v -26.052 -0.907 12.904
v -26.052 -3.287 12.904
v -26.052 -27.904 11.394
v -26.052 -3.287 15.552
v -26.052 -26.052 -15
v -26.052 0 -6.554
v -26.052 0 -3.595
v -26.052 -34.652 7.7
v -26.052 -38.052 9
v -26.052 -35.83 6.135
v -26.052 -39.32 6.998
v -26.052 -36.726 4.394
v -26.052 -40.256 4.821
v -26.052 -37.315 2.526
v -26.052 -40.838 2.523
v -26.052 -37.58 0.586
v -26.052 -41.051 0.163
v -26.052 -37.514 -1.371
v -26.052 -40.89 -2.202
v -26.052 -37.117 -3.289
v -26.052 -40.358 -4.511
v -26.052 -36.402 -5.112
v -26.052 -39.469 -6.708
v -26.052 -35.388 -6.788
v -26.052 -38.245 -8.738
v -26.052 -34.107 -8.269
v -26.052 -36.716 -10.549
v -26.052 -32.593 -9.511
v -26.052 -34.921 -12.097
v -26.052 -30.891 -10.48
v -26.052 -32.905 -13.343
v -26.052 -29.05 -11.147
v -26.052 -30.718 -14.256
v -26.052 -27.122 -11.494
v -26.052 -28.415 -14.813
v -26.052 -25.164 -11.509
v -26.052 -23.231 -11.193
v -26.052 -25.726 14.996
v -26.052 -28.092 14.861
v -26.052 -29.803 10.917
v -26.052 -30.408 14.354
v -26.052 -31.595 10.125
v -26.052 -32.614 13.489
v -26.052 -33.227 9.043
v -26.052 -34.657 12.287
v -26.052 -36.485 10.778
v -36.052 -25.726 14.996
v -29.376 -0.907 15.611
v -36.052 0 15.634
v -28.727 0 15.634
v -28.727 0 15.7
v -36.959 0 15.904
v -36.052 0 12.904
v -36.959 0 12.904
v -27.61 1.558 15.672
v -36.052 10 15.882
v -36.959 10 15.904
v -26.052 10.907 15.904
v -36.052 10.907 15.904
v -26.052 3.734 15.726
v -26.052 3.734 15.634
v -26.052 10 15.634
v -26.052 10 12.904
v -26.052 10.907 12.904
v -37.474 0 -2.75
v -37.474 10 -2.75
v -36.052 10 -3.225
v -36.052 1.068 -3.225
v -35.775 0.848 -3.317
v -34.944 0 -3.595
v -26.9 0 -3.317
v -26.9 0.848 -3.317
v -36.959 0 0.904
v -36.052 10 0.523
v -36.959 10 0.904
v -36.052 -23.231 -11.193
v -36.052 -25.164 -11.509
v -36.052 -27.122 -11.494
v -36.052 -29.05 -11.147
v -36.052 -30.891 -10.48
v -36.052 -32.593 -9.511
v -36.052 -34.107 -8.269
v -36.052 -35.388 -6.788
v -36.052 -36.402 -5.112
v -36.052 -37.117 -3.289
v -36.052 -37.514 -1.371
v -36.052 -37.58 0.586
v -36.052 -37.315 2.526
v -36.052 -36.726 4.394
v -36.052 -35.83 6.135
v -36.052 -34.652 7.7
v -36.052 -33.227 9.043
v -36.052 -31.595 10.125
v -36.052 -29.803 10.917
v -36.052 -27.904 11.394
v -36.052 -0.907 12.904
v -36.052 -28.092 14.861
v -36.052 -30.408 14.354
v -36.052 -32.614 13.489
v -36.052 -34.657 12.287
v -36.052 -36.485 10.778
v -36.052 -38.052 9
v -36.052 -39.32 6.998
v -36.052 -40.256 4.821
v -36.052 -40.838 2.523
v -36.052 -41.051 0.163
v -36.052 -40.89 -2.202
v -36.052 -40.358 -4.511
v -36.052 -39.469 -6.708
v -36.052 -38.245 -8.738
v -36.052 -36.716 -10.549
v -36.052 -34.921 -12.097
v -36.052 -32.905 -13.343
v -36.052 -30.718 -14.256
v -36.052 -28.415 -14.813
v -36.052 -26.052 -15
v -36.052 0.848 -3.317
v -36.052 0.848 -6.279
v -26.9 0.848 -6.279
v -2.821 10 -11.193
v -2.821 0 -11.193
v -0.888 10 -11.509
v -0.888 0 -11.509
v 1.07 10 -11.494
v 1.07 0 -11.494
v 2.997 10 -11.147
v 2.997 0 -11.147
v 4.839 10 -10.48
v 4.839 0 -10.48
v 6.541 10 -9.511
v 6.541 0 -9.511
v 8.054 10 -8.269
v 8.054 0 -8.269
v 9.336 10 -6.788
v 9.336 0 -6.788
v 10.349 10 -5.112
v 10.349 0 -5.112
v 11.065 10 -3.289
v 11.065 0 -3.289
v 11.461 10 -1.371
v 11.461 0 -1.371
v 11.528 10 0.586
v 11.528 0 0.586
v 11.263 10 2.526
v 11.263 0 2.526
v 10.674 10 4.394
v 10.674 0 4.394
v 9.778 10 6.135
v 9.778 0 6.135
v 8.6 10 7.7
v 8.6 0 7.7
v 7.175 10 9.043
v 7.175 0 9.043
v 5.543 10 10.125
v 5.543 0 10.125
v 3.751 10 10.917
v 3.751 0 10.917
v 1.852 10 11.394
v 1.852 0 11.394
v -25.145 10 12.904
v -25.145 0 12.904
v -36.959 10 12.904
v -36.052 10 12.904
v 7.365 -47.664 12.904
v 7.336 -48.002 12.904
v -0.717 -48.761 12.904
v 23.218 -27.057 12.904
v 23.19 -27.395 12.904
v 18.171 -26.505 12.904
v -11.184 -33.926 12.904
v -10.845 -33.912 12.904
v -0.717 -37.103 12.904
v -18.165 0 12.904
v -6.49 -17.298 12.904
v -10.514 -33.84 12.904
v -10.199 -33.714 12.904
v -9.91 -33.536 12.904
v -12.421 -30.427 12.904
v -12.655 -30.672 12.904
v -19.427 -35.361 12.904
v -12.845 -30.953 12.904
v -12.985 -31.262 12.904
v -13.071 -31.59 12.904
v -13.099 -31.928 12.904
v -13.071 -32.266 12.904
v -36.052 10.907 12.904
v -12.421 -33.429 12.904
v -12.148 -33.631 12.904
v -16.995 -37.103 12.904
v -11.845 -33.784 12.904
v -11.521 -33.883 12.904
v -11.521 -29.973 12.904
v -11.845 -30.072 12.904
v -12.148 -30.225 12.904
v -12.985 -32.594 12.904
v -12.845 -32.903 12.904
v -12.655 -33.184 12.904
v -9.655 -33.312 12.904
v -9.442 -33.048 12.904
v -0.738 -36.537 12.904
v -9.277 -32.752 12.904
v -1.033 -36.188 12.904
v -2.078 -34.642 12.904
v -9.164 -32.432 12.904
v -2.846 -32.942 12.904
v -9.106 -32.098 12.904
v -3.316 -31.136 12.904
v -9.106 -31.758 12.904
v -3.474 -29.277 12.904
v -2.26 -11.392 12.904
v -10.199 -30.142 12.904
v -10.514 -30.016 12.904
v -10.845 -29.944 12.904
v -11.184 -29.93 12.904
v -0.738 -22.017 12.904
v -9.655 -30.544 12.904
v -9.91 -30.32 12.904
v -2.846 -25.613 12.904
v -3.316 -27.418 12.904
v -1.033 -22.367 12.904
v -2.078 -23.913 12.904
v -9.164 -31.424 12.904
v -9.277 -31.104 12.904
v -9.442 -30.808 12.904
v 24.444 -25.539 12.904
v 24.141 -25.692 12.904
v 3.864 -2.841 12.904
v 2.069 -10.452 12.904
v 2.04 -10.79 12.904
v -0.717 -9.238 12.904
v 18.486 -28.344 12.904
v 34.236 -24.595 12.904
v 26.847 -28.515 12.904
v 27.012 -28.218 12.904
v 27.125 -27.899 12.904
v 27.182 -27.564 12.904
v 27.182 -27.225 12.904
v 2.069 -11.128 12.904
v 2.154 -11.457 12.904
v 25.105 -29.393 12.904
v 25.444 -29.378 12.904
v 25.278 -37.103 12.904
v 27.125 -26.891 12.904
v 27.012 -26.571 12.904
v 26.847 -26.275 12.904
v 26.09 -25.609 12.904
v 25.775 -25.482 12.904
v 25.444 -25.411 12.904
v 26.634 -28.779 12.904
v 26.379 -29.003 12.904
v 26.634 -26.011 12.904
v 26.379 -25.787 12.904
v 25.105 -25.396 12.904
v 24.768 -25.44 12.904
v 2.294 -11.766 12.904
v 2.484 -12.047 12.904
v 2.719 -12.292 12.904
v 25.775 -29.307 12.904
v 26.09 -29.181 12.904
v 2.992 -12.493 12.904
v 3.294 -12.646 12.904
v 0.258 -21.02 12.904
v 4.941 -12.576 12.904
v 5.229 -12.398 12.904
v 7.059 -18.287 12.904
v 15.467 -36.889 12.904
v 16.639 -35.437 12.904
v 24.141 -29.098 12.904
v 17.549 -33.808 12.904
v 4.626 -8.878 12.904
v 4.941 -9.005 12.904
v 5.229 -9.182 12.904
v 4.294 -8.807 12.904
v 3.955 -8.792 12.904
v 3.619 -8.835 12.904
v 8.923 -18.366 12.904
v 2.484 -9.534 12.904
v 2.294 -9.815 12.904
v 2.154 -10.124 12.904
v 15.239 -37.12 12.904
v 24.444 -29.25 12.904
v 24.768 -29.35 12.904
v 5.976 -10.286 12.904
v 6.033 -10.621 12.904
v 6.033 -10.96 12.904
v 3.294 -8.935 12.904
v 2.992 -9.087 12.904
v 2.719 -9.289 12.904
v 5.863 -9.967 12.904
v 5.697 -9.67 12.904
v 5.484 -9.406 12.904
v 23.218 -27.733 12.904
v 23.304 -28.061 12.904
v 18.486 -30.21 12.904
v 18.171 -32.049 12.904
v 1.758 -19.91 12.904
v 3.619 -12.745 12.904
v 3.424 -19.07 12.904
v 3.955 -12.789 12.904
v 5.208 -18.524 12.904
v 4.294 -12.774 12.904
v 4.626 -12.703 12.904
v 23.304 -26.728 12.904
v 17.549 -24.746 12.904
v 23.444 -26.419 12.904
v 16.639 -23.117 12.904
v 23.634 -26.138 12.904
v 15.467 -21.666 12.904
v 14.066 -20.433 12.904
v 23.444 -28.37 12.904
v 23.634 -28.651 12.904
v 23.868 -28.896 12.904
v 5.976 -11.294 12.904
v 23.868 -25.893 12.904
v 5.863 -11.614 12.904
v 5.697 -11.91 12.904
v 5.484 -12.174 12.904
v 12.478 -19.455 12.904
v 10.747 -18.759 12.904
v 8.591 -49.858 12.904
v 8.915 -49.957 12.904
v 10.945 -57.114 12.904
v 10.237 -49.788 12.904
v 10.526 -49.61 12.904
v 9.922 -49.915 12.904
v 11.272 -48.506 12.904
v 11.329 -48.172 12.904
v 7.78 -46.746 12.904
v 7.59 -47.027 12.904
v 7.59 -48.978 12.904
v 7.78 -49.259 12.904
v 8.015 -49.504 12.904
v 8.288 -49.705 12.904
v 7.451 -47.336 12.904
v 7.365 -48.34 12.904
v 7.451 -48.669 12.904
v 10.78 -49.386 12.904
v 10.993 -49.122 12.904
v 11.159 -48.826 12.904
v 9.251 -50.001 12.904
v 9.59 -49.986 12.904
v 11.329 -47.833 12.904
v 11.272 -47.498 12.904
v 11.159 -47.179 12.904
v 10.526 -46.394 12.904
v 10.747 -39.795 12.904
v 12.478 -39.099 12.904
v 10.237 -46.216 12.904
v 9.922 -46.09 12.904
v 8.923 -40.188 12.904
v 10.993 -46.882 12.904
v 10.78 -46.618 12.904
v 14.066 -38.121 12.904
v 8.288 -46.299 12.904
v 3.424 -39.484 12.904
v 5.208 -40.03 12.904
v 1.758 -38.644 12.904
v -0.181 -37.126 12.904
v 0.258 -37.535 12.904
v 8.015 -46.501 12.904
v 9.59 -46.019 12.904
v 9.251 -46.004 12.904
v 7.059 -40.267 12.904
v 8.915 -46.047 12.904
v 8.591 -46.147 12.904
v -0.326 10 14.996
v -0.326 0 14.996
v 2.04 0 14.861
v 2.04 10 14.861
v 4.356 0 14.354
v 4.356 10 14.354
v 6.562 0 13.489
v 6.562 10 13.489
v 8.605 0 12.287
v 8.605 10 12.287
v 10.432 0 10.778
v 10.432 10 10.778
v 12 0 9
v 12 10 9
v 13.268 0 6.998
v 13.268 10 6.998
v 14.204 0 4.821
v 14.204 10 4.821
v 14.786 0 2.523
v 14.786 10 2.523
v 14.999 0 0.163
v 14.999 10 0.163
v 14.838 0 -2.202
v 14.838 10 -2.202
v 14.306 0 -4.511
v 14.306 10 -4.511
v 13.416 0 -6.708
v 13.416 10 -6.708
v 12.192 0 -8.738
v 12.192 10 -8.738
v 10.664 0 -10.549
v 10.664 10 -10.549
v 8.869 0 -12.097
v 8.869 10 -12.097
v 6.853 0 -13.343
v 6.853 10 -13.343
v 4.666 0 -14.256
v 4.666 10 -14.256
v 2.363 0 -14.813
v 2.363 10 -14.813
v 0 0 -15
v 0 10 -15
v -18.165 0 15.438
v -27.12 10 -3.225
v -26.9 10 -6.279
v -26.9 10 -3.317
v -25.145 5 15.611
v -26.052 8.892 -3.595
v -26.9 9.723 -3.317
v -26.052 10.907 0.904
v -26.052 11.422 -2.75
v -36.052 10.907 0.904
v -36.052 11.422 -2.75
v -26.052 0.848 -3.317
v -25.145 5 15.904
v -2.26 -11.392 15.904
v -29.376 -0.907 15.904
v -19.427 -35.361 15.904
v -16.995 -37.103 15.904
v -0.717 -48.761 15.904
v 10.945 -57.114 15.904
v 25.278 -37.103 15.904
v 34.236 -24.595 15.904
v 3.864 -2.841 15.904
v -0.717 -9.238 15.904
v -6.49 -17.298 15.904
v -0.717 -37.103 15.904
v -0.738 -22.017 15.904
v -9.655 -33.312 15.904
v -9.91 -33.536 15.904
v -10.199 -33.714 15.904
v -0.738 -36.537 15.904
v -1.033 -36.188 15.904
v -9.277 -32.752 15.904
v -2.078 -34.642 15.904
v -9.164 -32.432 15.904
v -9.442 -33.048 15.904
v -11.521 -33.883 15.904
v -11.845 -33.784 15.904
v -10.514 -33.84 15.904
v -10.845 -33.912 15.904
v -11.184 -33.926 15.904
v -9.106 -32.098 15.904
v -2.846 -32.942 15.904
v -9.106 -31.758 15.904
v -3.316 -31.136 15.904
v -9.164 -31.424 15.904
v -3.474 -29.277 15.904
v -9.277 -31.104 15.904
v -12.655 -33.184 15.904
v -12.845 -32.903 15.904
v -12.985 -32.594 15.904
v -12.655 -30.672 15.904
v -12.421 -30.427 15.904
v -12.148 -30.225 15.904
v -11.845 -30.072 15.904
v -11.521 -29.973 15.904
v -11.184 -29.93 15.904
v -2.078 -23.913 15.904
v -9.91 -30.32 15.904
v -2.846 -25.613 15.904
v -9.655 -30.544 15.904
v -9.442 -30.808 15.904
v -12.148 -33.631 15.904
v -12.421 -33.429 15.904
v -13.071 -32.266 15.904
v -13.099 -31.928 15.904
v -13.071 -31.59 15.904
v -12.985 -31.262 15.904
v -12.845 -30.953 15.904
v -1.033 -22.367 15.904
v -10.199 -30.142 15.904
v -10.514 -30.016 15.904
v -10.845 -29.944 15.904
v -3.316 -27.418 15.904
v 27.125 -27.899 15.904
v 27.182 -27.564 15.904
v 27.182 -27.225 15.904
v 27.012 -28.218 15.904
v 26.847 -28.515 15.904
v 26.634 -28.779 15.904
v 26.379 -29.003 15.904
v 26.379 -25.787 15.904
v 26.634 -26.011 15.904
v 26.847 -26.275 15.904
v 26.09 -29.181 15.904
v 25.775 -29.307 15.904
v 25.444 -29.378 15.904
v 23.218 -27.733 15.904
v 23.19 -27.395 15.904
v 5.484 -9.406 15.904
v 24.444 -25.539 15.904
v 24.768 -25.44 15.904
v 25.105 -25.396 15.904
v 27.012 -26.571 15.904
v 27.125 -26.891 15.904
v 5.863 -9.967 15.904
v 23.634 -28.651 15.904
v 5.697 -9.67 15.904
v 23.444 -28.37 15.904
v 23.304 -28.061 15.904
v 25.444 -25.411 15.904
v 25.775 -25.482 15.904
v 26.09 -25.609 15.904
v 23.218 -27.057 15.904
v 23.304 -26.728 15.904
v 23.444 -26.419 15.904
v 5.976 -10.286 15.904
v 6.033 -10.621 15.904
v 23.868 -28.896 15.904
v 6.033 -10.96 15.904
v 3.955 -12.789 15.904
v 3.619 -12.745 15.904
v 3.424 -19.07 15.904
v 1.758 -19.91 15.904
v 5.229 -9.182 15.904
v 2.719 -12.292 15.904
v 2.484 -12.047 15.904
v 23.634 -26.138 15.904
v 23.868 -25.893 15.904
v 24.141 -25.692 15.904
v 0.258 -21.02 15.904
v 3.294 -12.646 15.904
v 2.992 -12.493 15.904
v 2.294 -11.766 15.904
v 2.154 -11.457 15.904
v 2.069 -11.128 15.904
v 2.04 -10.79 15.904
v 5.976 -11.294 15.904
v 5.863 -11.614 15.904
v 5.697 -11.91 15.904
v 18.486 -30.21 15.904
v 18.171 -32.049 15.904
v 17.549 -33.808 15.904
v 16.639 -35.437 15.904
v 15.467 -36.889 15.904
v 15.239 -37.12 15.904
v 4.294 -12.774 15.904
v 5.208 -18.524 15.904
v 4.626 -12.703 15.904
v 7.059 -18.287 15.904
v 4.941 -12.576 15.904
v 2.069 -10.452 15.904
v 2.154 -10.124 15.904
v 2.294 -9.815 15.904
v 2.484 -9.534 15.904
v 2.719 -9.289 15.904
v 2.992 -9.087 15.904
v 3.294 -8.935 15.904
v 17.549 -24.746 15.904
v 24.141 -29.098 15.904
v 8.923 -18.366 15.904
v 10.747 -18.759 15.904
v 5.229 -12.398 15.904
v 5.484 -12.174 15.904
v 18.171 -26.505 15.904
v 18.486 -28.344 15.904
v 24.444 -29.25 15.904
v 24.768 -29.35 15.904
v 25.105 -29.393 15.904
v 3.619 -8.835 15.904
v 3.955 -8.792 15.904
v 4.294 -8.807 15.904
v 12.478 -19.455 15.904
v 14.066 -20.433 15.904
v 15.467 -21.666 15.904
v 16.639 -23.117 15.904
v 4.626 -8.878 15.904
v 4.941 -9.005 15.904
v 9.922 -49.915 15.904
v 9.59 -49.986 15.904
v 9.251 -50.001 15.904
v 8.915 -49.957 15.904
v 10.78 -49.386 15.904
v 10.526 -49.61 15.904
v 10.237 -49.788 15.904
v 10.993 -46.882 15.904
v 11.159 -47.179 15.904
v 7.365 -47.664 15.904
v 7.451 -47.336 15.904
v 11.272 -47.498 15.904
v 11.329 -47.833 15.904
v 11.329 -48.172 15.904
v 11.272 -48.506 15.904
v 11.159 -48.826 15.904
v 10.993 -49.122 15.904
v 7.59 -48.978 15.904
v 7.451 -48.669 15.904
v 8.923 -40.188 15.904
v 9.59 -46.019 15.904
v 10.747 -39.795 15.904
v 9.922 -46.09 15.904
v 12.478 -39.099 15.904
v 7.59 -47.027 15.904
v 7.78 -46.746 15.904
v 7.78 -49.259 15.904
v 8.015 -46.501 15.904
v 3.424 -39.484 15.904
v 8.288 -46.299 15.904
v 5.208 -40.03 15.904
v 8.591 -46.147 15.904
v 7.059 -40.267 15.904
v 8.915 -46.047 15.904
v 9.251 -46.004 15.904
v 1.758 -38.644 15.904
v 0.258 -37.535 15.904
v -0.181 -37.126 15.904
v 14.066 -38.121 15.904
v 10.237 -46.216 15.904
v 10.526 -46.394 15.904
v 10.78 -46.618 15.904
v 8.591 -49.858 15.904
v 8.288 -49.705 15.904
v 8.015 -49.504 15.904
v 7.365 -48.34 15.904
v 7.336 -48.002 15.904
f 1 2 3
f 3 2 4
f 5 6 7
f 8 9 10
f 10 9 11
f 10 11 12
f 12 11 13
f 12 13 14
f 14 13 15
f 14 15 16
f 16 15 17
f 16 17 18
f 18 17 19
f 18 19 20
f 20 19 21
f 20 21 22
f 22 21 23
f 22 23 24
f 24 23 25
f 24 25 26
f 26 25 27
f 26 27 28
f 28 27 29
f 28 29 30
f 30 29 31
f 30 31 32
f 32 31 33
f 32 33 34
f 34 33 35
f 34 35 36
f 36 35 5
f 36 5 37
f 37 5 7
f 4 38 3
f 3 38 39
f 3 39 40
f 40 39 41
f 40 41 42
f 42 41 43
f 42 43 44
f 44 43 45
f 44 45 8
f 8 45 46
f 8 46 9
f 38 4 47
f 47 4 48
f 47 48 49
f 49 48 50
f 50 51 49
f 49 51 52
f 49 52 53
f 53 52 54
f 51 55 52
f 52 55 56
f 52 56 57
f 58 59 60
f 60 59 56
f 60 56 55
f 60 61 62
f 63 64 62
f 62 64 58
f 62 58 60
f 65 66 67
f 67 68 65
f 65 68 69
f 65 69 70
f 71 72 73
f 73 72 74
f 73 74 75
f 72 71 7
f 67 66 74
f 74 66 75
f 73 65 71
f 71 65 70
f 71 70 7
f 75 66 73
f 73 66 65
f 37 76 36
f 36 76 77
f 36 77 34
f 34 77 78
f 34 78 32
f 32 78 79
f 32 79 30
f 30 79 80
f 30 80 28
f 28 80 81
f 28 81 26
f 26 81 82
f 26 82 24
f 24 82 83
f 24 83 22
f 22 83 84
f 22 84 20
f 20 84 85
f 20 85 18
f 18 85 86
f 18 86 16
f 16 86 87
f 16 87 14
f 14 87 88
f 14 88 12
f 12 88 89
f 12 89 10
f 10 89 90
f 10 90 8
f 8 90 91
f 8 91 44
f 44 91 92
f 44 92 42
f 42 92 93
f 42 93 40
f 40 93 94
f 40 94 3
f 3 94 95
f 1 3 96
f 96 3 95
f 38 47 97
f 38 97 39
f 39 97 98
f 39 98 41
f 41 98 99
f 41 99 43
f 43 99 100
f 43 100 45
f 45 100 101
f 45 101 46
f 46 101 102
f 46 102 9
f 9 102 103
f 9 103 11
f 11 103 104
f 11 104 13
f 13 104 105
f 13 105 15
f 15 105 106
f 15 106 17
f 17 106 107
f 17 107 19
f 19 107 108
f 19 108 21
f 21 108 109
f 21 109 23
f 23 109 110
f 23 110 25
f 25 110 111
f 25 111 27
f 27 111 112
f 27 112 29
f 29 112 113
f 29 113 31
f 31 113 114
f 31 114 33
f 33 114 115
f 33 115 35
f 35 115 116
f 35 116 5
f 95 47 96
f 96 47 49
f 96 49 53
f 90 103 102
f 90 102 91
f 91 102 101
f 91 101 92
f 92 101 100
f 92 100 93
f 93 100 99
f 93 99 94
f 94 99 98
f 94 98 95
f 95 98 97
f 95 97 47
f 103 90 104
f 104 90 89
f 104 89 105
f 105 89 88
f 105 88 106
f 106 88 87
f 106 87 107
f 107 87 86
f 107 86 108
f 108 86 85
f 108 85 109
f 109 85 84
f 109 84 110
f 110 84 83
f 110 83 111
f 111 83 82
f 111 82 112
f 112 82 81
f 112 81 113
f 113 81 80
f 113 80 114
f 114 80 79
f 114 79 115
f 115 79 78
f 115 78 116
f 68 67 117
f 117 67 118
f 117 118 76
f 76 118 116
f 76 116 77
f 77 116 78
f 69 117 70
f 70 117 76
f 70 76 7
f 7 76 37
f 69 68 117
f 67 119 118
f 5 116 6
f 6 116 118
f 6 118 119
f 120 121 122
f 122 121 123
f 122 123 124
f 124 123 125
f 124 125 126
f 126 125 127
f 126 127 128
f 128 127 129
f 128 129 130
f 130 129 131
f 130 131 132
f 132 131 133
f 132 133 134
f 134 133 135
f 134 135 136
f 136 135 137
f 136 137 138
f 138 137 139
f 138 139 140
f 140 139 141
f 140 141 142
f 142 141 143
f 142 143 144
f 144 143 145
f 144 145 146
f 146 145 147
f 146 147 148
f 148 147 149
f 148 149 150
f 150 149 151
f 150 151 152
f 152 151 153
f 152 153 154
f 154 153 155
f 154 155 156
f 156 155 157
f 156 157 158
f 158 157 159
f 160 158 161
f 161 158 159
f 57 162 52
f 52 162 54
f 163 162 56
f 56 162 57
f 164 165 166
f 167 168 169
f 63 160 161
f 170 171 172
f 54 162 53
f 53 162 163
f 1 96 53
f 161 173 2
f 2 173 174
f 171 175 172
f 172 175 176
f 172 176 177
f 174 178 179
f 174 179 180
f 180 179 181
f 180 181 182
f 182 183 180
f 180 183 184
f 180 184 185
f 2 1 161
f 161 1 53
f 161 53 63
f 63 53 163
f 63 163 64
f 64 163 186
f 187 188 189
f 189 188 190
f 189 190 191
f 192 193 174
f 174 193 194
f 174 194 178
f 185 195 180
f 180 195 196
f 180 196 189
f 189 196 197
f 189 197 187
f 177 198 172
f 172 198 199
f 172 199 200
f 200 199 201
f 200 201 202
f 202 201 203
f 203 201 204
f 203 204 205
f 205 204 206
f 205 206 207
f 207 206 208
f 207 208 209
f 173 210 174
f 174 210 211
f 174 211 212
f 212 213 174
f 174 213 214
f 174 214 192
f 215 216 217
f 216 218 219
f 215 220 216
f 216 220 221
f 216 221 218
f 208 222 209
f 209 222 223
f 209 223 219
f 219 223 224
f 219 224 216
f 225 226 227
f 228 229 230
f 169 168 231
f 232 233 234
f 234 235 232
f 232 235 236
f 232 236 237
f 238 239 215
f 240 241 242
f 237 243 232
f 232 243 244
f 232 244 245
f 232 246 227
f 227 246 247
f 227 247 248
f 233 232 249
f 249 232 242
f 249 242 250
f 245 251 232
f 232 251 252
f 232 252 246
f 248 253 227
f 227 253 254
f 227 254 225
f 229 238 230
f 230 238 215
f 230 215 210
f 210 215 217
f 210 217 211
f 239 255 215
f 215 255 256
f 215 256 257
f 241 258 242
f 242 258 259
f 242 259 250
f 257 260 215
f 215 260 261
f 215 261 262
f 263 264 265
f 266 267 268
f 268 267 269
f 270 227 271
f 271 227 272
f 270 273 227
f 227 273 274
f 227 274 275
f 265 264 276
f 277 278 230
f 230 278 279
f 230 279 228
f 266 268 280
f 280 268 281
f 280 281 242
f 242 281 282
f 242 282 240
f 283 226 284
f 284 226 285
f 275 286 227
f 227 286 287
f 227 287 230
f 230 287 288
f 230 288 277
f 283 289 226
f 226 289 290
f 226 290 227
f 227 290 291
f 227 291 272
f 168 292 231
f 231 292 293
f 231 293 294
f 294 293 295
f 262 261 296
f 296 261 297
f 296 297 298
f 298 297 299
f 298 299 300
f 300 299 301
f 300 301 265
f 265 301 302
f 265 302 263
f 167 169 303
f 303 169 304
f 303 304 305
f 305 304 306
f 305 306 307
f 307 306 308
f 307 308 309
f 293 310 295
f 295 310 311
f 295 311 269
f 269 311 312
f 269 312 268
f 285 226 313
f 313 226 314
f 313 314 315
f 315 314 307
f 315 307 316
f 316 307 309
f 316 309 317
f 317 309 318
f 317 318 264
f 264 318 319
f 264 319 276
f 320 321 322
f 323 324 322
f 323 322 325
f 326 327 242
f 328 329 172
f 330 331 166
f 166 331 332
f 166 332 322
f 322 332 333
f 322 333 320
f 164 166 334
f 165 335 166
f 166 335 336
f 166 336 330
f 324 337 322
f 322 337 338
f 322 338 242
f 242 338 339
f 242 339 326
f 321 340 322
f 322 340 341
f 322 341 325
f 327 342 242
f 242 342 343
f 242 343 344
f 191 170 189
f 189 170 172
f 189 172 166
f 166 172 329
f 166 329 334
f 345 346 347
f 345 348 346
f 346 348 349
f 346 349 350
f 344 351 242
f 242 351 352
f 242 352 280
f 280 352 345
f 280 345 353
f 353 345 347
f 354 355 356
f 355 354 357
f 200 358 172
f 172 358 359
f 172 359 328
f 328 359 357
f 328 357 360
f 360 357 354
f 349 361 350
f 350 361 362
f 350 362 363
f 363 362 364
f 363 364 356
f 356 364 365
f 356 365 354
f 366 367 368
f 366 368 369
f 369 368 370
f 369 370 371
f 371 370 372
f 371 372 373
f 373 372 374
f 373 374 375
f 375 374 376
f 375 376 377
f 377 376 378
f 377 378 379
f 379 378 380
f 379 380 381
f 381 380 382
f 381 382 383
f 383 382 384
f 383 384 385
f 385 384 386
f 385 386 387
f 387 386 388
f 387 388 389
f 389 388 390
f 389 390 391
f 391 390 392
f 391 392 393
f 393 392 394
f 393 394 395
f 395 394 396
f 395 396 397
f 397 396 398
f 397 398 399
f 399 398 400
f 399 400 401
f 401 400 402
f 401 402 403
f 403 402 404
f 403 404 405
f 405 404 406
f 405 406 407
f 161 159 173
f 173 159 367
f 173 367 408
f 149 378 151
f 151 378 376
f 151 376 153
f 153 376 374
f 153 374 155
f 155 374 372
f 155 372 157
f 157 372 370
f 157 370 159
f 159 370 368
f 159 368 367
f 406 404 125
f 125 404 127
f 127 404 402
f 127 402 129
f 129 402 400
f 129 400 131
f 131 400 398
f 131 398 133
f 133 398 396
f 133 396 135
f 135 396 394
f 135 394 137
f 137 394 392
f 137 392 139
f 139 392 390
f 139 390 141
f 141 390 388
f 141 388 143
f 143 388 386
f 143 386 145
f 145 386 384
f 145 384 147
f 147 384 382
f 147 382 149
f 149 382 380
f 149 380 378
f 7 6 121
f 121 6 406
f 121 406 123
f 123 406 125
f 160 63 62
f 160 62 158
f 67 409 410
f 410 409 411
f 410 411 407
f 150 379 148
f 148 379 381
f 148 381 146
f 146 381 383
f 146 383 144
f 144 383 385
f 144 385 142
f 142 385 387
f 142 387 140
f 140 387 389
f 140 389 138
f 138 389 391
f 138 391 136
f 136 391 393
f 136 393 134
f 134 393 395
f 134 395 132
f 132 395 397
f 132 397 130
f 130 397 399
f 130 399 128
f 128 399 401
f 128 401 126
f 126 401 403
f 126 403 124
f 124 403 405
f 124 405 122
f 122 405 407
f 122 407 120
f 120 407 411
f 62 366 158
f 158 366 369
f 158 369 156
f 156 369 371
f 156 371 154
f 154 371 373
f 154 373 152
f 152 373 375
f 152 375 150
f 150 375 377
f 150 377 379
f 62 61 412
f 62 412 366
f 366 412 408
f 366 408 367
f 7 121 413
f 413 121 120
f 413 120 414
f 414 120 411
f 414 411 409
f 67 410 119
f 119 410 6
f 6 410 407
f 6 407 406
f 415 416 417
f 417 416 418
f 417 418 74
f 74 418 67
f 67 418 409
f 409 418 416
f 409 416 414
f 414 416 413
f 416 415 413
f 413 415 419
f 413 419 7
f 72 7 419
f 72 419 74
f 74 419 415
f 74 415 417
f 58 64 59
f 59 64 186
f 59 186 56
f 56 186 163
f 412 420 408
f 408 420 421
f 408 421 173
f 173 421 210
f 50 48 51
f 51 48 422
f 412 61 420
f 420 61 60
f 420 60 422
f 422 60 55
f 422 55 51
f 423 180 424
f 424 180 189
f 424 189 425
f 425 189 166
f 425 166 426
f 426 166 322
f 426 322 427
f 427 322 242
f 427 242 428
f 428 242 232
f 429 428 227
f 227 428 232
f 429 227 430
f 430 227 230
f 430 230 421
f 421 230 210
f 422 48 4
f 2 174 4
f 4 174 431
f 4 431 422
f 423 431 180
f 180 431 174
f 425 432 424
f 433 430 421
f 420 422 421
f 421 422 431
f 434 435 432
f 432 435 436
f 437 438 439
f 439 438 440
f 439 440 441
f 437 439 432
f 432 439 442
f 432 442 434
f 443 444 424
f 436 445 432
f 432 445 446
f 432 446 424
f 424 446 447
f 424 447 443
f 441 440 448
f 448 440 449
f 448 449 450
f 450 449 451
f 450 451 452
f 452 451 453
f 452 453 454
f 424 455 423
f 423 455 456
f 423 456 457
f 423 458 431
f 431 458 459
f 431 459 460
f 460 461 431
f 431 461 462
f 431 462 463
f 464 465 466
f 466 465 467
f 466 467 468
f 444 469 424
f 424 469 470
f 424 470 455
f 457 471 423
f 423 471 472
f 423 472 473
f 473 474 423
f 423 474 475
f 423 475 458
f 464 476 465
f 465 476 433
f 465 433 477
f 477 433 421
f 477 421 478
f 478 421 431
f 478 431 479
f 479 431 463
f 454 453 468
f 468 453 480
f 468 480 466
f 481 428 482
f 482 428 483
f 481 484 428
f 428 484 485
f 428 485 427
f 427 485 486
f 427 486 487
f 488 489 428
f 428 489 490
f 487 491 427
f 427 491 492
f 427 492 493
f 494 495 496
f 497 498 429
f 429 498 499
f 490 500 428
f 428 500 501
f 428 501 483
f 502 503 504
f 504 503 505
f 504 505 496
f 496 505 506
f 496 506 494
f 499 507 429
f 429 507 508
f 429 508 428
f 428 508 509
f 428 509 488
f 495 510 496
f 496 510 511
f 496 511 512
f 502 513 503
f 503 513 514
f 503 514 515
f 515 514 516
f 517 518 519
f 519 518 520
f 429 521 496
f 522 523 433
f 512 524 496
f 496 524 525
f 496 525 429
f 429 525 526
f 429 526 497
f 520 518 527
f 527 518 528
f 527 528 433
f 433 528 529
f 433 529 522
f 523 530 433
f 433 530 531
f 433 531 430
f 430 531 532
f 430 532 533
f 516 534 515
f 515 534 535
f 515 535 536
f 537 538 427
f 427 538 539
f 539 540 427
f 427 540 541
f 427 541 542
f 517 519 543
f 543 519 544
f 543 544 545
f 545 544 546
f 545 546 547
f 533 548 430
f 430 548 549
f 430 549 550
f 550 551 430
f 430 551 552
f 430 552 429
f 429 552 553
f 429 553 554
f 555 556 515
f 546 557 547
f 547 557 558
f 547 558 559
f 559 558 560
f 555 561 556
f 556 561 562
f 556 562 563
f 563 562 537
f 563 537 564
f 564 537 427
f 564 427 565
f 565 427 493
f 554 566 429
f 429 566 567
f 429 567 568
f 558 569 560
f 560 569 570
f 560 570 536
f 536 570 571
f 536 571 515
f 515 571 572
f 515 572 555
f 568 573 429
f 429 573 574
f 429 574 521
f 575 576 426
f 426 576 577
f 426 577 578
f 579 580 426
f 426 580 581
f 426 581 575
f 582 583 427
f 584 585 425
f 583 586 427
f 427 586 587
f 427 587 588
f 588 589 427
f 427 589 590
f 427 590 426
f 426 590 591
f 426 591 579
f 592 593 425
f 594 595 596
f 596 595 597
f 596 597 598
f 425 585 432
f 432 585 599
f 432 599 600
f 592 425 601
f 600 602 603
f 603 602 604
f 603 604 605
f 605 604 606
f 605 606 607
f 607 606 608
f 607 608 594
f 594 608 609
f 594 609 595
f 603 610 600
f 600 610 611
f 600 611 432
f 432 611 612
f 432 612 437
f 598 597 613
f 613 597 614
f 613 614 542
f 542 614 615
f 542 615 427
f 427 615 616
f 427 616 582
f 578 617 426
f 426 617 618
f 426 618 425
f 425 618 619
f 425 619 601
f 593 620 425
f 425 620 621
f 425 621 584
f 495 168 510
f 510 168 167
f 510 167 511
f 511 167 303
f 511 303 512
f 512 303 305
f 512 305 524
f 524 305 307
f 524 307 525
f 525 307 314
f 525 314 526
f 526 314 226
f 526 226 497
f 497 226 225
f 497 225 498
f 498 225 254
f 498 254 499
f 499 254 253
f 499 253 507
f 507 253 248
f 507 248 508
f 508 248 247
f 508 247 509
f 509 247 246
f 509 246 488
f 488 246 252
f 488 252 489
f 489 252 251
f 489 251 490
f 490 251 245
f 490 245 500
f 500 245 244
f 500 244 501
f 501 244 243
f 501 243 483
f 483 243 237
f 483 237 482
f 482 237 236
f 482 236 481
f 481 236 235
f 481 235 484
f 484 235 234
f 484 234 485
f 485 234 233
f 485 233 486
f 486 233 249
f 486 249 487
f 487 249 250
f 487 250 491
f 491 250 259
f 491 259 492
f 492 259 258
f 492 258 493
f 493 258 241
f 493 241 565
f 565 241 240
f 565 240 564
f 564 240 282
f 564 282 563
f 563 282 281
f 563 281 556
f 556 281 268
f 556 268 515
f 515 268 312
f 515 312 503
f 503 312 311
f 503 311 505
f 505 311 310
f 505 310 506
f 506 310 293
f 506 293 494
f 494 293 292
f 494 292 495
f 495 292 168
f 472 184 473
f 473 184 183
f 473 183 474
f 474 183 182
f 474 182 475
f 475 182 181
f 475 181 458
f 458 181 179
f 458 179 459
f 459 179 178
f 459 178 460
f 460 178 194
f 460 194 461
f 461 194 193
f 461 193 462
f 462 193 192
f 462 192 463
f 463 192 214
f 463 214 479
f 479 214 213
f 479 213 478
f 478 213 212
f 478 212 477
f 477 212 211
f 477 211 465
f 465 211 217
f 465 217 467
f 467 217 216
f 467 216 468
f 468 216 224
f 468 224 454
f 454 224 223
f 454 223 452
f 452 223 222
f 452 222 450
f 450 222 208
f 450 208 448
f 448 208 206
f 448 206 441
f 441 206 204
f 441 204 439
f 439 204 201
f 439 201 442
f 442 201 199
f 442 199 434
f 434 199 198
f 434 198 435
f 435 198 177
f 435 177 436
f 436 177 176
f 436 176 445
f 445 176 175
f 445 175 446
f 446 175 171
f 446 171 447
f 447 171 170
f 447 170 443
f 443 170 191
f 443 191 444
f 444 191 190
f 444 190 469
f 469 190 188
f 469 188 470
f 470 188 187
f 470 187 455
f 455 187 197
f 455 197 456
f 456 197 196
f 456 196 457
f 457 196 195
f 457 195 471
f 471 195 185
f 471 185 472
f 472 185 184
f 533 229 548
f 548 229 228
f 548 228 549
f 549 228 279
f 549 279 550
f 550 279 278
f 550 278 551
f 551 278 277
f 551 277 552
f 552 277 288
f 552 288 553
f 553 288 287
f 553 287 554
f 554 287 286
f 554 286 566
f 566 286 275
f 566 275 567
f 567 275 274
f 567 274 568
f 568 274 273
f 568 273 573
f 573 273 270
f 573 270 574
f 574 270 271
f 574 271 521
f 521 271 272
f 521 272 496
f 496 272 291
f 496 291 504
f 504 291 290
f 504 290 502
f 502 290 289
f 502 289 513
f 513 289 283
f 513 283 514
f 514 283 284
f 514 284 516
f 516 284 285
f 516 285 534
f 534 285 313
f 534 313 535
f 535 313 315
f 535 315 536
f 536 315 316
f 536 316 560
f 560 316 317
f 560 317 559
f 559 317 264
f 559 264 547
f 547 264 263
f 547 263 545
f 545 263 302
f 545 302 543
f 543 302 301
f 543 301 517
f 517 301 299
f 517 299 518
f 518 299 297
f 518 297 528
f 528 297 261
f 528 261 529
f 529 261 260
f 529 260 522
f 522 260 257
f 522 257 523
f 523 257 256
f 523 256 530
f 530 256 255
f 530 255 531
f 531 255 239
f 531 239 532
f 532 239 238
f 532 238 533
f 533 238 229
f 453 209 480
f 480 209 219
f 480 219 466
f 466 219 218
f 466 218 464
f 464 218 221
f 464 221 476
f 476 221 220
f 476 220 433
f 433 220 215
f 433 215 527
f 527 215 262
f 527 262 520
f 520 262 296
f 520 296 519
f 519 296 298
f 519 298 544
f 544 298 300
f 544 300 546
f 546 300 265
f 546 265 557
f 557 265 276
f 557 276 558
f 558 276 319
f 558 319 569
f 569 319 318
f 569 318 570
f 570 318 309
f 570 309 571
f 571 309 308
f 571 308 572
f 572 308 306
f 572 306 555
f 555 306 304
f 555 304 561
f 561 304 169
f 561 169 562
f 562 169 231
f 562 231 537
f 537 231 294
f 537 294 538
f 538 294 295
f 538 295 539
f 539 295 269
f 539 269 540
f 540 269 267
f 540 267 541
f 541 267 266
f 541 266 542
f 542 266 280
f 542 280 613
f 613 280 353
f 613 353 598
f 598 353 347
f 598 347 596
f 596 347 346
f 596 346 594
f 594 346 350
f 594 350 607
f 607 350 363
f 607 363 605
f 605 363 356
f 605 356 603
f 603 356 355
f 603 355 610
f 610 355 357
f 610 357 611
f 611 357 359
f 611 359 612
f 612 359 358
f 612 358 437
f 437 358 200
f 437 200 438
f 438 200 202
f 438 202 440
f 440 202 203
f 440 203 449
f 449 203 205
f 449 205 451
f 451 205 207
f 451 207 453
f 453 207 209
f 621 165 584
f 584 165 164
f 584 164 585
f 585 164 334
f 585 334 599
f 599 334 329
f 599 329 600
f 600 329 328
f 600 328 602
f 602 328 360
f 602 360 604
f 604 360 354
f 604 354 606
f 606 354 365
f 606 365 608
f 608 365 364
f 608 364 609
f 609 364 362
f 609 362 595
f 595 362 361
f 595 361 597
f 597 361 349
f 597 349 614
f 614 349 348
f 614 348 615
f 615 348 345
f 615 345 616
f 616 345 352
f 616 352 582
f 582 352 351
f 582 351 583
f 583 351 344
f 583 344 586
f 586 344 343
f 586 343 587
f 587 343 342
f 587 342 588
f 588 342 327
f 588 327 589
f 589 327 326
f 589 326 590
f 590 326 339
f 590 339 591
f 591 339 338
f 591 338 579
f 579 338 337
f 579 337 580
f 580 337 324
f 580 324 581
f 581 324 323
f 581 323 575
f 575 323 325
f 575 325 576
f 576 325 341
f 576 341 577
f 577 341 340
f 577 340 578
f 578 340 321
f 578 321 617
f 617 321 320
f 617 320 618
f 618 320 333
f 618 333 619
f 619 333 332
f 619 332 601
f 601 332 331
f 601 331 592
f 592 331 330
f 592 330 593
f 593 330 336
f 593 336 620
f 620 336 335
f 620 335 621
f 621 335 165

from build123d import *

# Parameters (mm, degrees)
BOSS_EXTRUDE1_DEPTH = 10
CIRPATTERN1_COUNT   = 2
CIRPATTERN1_ANGLE   = 90
SKETCH4_R           = 2
SKETCH4_R_2         = 11
BOSS_EXTRUDE2_DEPTH = 3


with BuildPart() as part:
    # Sketch1 → Boss-Extrude1 (new body)
    with BuildSketch(Plane(origin=(0, 0, 0), x_dir=(1, 0, 0), z_dir=(0, 1, 0))):
        with BuildLine():
            Line((0, 15), (-26.900155428, 6.278700475))
            Line((-26.900155428, 6.278700475), (-37.47437809, 2.750369919))
            Line((-37.47437809, 2.750369919), (-36.958650594, -0.903972442))
            Line((-36.958650594, -0.903972442), (-26.900155428, 3.317423045))
            Line((-26.900155428, 3.317423045), (-2.821131559, 11.193160892))
            ThreePointArc((-2.821131559, 11.193160892), (11.303828334, 2.338610491), (1.8517881, -11.393705054))
            Line((1.8517881, -11.393705054), (-25.145499842, -12.903972442))
            Line((-25.145499842, -12.903972442), (-32.586903668, -12.903972442))
            Line((-32.586903668, -12.903972442), (-36.958650594, -12.903972442))
            Line((-36.958650594, -12.903972442), (-36.958650594, -15.903972442))
            Line((-36.958650594, -15.903972442), (-0.325723138, -14.996463064))
            ThreePointArc((-0.325723138, -14.996463064), (14.99911574, -0.16287117), (0, 15))
        make_face()
    boss_extrude1 = extrude(amount=BOSS_EXTRUDE1_DEPTH)

    # CirPattern1: Boss-Extrude1 ×2 about axis
    cirpattern1_axis = Axis((-31.052075218, 5, 0), (0, 0, -1))
    for i in range(1, CIRPATTERN1_COUNT):
        add(boss_extrude1.rotate(cirpattern1_axis, i * CIRPATTERN1_ANGLE / (CIRPATTERN1_COUNT - 1)))

    # Sketch4 → Boss-Extrude2 (add)
    with BuildSketch(Plane(origin=(0, 0, 12.903972442), x_dir=(-1, 0, 0), z_dir=(0, 0, -1))):
        Polygon((25.145499842, 5), (29.375972464, -0.906575376), (6.490188193, -17.298084434), (19.427171172, -35.360667965), (-10.945093119, -57.114226389), (-34.236490518, -24.59483514), (-3.864226227, -2.841276715), (2.259715572, -11.391509058), align=None)
        with Locations((-4.040125025, -10.790378208)):
            Circle(SKETCH4_R, mode=Mode.SUBTRACT)
        with Locations((11.099283284, -31.92798252)):
            Circle(SKETCH4_R, mode=Mode.SUBTRACT)
        with Locations((-25.189607513, -27.394689404)):
            Circle(SKETCH4_R, mode=Mode.SUBTRACT)
        with Locations((-9.336361168, -48.002323435)):
            Circle(SKETCH4_R, mode=Mode.SUBTRACT)
        with Locations((-7.525518654, -29.277184542)):
            Circle(SKETCH4_R_2, mode=Mode.SUBTRACT)
    extrude(amount=-BOSS_EXTRUDE2_DEPTH)


solid = part.part
